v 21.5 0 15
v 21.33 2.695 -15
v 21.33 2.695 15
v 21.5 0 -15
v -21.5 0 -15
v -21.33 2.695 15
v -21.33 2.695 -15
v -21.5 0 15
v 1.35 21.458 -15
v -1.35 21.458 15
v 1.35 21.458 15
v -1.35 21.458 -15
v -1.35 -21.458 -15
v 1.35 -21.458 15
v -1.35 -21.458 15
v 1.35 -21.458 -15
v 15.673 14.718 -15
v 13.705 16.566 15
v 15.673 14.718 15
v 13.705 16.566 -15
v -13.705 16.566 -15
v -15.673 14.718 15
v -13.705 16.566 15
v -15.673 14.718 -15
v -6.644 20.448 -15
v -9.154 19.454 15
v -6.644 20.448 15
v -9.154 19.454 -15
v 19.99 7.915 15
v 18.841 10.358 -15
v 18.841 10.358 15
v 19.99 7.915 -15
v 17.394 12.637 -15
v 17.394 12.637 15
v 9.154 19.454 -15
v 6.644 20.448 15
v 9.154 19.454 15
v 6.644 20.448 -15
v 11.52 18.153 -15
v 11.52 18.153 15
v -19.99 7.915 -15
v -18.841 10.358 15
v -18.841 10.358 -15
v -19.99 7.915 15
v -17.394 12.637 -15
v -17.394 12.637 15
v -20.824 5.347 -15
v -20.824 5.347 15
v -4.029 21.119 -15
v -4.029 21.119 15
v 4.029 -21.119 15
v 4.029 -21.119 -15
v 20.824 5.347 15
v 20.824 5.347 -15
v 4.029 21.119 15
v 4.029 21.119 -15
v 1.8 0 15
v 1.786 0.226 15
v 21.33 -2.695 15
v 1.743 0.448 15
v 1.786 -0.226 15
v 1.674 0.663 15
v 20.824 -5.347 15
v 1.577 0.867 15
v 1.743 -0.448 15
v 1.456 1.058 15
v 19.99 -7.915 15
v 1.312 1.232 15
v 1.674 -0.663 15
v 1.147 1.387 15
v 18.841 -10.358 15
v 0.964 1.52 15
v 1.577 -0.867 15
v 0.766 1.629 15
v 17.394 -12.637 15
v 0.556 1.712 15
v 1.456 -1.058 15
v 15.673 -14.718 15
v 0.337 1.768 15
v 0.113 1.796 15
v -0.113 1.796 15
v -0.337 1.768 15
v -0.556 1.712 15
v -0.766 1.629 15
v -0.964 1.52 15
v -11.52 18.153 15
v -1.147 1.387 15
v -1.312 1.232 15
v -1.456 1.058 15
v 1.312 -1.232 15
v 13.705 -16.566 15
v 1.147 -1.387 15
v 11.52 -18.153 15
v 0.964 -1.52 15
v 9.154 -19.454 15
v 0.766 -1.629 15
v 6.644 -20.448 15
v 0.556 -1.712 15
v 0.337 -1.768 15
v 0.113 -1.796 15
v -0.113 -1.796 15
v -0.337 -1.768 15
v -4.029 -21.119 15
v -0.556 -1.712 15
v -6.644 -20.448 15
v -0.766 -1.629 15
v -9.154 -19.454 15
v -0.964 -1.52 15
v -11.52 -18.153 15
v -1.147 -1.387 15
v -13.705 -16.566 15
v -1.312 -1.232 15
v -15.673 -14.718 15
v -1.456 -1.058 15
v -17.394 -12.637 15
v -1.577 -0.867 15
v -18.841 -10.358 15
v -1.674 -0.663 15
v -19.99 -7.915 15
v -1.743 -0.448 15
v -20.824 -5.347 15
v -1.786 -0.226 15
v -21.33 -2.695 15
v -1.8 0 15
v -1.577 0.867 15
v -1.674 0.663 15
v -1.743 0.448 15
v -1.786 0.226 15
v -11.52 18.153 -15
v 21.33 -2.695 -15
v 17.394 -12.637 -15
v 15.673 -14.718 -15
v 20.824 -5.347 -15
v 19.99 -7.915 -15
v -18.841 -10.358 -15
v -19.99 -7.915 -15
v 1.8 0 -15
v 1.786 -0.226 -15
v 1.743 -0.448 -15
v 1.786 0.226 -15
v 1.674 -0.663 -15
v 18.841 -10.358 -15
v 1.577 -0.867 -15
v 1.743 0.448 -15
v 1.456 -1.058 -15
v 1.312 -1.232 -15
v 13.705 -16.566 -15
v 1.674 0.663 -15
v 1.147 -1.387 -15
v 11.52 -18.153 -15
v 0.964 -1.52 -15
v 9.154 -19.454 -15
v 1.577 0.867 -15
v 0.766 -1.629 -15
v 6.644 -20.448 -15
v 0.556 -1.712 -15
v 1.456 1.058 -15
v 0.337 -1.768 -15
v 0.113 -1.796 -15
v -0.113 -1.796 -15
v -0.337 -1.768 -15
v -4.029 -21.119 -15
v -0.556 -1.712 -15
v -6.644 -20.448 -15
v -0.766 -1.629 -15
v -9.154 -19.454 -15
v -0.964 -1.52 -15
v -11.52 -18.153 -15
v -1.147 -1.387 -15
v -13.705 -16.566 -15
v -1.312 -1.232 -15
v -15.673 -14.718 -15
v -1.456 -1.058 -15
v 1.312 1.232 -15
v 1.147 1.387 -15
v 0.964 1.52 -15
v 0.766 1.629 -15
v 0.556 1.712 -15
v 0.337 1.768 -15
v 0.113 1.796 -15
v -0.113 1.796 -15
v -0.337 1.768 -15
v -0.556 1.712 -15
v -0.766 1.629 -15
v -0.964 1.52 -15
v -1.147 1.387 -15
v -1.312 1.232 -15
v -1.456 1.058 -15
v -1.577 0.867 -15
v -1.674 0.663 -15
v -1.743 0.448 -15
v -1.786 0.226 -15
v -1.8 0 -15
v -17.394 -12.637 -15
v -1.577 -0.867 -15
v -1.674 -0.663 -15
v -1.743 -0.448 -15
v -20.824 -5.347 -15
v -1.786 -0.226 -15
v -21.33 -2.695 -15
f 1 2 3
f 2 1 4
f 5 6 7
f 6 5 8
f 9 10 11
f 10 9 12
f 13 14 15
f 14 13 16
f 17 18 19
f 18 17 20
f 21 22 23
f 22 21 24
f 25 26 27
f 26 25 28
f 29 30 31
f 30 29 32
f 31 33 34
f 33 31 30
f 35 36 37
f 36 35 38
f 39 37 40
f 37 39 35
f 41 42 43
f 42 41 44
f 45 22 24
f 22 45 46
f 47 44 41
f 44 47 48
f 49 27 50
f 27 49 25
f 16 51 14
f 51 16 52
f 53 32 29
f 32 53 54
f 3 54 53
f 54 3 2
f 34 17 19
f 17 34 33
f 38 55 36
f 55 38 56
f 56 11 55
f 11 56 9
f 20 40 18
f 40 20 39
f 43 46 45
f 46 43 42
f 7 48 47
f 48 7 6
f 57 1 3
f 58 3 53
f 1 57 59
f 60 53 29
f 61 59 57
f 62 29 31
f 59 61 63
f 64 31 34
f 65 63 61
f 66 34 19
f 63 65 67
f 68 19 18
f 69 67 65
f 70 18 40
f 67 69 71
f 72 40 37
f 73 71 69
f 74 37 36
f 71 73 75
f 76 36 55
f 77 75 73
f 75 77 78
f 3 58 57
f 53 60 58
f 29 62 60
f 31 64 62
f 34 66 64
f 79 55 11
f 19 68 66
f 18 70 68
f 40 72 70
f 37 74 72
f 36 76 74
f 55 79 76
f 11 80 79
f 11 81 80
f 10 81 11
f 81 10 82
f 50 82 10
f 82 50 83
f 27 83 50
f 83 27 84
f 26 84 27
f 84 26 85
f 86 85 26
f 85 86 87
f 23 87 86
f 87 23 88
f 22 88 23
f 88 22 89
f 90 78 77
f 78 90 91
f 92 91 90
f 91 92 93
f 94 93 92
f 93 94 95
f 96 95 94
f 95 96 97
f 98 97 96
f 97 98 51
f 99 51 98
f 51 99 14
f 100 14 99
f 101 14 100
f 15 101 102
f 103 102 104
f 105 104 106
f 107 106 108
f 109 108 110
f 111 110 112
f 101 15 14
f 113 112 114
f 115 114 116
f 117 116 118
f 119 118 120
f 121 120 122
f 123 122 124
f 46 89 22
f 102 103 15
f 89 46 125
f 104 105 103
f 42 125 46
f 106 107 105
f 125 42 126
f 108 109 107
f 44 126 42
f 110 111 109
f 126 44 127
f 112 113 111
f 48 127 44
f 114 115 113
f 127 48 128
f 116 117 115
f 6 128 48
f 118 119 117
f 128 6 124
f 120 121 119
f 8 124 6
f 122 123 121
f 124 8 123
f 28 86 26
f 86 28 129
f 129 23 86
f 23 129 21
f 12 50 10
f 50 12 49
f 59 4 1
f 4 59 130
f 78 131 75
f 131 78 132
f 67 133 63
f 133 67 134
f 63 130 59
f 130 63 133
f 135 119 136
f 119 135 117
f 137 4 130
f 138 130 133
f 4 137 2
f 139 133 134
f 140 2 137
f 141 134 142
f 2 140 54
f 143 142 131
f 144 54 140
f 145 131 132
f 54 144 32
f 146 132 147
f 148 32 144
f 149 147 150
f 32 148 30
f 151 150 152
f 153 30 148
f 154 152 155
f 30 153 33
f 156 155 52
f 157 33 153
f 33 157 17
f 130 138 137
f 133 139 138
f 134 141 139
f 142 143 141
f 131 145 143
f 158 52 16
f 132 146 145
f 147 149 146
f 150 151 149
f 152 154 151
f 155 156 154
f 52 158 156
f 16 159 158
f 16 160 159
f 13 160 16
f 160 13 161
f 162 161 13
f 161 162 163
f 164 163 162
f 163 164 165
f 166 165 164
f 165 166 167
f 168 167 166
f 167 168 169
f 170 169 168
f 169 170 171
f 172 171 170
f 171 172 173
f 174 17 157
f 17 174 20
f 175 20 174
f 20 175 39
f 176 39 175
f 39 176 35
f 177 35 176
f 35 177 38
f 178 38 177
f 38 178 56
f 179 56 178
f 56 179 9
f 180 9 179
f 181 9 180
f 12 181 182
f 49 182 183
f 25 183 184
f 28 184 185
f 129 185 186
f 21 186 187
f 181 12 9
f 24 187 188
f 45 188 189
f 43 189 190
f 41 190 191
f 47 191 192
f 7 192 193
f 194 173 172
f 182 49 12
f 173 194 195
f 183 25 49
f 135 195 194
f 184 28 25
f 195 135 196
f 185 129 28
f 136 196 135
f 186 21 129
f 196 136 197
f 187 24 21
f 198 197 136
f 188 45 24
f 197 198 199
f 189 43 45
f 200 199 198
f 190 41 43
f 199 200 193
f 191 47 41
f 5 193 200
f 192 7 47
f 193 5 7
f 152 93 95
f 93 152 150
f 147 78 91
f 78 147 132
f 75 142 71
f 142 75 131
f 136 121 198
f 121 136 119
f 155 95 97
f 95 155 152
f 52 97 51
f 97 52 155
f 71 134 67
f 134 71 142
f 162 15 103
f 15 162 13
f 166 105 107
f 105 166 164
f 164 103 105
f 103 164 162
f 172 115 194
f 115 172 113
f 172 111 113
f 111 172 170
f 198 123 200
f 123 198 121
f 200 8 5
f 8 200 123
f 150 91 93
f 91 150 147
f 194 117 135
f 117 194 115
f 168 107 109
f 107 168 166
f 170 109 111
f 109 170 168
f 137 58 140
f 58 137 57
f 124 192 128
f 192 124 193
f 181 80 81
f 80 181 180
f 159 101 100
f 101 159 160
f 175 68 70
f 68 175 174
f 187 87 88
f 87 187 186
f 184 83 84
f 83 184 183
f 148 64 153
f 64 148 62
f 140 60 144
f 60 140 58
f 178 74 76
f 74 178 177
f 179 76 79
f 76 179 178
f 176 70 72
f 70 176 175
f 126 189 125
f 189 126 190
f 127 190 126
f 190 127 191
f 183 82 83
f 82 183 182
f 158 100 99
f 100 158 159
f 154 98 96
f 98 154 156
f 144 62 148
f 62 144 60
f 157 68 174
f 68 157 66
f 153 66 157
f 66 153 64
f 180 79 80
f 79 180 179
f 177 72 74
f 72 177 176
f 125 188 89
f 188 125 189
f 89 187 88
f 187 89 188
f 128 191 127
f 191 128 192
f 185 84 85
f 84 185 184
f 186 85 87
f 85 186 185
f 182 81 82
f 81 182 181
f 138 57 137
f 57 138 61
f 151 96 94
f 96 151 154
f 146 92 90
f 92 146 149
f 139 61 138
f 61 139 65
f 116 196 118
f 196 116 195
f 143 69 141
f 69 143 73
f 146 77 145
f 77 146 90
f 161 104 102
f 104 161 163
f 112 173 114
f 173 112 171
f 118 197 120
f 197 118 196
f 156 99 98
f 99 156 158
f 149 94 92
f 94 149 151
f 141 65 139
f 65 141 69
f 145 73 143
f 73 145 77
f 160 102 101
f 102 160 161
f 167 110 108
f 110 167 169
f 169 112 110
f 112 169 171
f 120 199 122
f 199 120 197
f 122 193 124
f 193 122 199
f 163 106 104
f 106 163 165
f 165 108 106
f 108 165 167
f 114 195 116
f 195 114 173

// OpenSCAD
$fn = 50;


difference() {
	union() {
		translate(v = [0, 0, -15.0000000000]) {
			cylinder(h = 30, r = 21.5000000000);
		}
	}
	union() {
		translate(v = [0, 0, -100.0000000000]) {
			cylinder(h = 200, r = 1.8000000000);
		}
	}
}
